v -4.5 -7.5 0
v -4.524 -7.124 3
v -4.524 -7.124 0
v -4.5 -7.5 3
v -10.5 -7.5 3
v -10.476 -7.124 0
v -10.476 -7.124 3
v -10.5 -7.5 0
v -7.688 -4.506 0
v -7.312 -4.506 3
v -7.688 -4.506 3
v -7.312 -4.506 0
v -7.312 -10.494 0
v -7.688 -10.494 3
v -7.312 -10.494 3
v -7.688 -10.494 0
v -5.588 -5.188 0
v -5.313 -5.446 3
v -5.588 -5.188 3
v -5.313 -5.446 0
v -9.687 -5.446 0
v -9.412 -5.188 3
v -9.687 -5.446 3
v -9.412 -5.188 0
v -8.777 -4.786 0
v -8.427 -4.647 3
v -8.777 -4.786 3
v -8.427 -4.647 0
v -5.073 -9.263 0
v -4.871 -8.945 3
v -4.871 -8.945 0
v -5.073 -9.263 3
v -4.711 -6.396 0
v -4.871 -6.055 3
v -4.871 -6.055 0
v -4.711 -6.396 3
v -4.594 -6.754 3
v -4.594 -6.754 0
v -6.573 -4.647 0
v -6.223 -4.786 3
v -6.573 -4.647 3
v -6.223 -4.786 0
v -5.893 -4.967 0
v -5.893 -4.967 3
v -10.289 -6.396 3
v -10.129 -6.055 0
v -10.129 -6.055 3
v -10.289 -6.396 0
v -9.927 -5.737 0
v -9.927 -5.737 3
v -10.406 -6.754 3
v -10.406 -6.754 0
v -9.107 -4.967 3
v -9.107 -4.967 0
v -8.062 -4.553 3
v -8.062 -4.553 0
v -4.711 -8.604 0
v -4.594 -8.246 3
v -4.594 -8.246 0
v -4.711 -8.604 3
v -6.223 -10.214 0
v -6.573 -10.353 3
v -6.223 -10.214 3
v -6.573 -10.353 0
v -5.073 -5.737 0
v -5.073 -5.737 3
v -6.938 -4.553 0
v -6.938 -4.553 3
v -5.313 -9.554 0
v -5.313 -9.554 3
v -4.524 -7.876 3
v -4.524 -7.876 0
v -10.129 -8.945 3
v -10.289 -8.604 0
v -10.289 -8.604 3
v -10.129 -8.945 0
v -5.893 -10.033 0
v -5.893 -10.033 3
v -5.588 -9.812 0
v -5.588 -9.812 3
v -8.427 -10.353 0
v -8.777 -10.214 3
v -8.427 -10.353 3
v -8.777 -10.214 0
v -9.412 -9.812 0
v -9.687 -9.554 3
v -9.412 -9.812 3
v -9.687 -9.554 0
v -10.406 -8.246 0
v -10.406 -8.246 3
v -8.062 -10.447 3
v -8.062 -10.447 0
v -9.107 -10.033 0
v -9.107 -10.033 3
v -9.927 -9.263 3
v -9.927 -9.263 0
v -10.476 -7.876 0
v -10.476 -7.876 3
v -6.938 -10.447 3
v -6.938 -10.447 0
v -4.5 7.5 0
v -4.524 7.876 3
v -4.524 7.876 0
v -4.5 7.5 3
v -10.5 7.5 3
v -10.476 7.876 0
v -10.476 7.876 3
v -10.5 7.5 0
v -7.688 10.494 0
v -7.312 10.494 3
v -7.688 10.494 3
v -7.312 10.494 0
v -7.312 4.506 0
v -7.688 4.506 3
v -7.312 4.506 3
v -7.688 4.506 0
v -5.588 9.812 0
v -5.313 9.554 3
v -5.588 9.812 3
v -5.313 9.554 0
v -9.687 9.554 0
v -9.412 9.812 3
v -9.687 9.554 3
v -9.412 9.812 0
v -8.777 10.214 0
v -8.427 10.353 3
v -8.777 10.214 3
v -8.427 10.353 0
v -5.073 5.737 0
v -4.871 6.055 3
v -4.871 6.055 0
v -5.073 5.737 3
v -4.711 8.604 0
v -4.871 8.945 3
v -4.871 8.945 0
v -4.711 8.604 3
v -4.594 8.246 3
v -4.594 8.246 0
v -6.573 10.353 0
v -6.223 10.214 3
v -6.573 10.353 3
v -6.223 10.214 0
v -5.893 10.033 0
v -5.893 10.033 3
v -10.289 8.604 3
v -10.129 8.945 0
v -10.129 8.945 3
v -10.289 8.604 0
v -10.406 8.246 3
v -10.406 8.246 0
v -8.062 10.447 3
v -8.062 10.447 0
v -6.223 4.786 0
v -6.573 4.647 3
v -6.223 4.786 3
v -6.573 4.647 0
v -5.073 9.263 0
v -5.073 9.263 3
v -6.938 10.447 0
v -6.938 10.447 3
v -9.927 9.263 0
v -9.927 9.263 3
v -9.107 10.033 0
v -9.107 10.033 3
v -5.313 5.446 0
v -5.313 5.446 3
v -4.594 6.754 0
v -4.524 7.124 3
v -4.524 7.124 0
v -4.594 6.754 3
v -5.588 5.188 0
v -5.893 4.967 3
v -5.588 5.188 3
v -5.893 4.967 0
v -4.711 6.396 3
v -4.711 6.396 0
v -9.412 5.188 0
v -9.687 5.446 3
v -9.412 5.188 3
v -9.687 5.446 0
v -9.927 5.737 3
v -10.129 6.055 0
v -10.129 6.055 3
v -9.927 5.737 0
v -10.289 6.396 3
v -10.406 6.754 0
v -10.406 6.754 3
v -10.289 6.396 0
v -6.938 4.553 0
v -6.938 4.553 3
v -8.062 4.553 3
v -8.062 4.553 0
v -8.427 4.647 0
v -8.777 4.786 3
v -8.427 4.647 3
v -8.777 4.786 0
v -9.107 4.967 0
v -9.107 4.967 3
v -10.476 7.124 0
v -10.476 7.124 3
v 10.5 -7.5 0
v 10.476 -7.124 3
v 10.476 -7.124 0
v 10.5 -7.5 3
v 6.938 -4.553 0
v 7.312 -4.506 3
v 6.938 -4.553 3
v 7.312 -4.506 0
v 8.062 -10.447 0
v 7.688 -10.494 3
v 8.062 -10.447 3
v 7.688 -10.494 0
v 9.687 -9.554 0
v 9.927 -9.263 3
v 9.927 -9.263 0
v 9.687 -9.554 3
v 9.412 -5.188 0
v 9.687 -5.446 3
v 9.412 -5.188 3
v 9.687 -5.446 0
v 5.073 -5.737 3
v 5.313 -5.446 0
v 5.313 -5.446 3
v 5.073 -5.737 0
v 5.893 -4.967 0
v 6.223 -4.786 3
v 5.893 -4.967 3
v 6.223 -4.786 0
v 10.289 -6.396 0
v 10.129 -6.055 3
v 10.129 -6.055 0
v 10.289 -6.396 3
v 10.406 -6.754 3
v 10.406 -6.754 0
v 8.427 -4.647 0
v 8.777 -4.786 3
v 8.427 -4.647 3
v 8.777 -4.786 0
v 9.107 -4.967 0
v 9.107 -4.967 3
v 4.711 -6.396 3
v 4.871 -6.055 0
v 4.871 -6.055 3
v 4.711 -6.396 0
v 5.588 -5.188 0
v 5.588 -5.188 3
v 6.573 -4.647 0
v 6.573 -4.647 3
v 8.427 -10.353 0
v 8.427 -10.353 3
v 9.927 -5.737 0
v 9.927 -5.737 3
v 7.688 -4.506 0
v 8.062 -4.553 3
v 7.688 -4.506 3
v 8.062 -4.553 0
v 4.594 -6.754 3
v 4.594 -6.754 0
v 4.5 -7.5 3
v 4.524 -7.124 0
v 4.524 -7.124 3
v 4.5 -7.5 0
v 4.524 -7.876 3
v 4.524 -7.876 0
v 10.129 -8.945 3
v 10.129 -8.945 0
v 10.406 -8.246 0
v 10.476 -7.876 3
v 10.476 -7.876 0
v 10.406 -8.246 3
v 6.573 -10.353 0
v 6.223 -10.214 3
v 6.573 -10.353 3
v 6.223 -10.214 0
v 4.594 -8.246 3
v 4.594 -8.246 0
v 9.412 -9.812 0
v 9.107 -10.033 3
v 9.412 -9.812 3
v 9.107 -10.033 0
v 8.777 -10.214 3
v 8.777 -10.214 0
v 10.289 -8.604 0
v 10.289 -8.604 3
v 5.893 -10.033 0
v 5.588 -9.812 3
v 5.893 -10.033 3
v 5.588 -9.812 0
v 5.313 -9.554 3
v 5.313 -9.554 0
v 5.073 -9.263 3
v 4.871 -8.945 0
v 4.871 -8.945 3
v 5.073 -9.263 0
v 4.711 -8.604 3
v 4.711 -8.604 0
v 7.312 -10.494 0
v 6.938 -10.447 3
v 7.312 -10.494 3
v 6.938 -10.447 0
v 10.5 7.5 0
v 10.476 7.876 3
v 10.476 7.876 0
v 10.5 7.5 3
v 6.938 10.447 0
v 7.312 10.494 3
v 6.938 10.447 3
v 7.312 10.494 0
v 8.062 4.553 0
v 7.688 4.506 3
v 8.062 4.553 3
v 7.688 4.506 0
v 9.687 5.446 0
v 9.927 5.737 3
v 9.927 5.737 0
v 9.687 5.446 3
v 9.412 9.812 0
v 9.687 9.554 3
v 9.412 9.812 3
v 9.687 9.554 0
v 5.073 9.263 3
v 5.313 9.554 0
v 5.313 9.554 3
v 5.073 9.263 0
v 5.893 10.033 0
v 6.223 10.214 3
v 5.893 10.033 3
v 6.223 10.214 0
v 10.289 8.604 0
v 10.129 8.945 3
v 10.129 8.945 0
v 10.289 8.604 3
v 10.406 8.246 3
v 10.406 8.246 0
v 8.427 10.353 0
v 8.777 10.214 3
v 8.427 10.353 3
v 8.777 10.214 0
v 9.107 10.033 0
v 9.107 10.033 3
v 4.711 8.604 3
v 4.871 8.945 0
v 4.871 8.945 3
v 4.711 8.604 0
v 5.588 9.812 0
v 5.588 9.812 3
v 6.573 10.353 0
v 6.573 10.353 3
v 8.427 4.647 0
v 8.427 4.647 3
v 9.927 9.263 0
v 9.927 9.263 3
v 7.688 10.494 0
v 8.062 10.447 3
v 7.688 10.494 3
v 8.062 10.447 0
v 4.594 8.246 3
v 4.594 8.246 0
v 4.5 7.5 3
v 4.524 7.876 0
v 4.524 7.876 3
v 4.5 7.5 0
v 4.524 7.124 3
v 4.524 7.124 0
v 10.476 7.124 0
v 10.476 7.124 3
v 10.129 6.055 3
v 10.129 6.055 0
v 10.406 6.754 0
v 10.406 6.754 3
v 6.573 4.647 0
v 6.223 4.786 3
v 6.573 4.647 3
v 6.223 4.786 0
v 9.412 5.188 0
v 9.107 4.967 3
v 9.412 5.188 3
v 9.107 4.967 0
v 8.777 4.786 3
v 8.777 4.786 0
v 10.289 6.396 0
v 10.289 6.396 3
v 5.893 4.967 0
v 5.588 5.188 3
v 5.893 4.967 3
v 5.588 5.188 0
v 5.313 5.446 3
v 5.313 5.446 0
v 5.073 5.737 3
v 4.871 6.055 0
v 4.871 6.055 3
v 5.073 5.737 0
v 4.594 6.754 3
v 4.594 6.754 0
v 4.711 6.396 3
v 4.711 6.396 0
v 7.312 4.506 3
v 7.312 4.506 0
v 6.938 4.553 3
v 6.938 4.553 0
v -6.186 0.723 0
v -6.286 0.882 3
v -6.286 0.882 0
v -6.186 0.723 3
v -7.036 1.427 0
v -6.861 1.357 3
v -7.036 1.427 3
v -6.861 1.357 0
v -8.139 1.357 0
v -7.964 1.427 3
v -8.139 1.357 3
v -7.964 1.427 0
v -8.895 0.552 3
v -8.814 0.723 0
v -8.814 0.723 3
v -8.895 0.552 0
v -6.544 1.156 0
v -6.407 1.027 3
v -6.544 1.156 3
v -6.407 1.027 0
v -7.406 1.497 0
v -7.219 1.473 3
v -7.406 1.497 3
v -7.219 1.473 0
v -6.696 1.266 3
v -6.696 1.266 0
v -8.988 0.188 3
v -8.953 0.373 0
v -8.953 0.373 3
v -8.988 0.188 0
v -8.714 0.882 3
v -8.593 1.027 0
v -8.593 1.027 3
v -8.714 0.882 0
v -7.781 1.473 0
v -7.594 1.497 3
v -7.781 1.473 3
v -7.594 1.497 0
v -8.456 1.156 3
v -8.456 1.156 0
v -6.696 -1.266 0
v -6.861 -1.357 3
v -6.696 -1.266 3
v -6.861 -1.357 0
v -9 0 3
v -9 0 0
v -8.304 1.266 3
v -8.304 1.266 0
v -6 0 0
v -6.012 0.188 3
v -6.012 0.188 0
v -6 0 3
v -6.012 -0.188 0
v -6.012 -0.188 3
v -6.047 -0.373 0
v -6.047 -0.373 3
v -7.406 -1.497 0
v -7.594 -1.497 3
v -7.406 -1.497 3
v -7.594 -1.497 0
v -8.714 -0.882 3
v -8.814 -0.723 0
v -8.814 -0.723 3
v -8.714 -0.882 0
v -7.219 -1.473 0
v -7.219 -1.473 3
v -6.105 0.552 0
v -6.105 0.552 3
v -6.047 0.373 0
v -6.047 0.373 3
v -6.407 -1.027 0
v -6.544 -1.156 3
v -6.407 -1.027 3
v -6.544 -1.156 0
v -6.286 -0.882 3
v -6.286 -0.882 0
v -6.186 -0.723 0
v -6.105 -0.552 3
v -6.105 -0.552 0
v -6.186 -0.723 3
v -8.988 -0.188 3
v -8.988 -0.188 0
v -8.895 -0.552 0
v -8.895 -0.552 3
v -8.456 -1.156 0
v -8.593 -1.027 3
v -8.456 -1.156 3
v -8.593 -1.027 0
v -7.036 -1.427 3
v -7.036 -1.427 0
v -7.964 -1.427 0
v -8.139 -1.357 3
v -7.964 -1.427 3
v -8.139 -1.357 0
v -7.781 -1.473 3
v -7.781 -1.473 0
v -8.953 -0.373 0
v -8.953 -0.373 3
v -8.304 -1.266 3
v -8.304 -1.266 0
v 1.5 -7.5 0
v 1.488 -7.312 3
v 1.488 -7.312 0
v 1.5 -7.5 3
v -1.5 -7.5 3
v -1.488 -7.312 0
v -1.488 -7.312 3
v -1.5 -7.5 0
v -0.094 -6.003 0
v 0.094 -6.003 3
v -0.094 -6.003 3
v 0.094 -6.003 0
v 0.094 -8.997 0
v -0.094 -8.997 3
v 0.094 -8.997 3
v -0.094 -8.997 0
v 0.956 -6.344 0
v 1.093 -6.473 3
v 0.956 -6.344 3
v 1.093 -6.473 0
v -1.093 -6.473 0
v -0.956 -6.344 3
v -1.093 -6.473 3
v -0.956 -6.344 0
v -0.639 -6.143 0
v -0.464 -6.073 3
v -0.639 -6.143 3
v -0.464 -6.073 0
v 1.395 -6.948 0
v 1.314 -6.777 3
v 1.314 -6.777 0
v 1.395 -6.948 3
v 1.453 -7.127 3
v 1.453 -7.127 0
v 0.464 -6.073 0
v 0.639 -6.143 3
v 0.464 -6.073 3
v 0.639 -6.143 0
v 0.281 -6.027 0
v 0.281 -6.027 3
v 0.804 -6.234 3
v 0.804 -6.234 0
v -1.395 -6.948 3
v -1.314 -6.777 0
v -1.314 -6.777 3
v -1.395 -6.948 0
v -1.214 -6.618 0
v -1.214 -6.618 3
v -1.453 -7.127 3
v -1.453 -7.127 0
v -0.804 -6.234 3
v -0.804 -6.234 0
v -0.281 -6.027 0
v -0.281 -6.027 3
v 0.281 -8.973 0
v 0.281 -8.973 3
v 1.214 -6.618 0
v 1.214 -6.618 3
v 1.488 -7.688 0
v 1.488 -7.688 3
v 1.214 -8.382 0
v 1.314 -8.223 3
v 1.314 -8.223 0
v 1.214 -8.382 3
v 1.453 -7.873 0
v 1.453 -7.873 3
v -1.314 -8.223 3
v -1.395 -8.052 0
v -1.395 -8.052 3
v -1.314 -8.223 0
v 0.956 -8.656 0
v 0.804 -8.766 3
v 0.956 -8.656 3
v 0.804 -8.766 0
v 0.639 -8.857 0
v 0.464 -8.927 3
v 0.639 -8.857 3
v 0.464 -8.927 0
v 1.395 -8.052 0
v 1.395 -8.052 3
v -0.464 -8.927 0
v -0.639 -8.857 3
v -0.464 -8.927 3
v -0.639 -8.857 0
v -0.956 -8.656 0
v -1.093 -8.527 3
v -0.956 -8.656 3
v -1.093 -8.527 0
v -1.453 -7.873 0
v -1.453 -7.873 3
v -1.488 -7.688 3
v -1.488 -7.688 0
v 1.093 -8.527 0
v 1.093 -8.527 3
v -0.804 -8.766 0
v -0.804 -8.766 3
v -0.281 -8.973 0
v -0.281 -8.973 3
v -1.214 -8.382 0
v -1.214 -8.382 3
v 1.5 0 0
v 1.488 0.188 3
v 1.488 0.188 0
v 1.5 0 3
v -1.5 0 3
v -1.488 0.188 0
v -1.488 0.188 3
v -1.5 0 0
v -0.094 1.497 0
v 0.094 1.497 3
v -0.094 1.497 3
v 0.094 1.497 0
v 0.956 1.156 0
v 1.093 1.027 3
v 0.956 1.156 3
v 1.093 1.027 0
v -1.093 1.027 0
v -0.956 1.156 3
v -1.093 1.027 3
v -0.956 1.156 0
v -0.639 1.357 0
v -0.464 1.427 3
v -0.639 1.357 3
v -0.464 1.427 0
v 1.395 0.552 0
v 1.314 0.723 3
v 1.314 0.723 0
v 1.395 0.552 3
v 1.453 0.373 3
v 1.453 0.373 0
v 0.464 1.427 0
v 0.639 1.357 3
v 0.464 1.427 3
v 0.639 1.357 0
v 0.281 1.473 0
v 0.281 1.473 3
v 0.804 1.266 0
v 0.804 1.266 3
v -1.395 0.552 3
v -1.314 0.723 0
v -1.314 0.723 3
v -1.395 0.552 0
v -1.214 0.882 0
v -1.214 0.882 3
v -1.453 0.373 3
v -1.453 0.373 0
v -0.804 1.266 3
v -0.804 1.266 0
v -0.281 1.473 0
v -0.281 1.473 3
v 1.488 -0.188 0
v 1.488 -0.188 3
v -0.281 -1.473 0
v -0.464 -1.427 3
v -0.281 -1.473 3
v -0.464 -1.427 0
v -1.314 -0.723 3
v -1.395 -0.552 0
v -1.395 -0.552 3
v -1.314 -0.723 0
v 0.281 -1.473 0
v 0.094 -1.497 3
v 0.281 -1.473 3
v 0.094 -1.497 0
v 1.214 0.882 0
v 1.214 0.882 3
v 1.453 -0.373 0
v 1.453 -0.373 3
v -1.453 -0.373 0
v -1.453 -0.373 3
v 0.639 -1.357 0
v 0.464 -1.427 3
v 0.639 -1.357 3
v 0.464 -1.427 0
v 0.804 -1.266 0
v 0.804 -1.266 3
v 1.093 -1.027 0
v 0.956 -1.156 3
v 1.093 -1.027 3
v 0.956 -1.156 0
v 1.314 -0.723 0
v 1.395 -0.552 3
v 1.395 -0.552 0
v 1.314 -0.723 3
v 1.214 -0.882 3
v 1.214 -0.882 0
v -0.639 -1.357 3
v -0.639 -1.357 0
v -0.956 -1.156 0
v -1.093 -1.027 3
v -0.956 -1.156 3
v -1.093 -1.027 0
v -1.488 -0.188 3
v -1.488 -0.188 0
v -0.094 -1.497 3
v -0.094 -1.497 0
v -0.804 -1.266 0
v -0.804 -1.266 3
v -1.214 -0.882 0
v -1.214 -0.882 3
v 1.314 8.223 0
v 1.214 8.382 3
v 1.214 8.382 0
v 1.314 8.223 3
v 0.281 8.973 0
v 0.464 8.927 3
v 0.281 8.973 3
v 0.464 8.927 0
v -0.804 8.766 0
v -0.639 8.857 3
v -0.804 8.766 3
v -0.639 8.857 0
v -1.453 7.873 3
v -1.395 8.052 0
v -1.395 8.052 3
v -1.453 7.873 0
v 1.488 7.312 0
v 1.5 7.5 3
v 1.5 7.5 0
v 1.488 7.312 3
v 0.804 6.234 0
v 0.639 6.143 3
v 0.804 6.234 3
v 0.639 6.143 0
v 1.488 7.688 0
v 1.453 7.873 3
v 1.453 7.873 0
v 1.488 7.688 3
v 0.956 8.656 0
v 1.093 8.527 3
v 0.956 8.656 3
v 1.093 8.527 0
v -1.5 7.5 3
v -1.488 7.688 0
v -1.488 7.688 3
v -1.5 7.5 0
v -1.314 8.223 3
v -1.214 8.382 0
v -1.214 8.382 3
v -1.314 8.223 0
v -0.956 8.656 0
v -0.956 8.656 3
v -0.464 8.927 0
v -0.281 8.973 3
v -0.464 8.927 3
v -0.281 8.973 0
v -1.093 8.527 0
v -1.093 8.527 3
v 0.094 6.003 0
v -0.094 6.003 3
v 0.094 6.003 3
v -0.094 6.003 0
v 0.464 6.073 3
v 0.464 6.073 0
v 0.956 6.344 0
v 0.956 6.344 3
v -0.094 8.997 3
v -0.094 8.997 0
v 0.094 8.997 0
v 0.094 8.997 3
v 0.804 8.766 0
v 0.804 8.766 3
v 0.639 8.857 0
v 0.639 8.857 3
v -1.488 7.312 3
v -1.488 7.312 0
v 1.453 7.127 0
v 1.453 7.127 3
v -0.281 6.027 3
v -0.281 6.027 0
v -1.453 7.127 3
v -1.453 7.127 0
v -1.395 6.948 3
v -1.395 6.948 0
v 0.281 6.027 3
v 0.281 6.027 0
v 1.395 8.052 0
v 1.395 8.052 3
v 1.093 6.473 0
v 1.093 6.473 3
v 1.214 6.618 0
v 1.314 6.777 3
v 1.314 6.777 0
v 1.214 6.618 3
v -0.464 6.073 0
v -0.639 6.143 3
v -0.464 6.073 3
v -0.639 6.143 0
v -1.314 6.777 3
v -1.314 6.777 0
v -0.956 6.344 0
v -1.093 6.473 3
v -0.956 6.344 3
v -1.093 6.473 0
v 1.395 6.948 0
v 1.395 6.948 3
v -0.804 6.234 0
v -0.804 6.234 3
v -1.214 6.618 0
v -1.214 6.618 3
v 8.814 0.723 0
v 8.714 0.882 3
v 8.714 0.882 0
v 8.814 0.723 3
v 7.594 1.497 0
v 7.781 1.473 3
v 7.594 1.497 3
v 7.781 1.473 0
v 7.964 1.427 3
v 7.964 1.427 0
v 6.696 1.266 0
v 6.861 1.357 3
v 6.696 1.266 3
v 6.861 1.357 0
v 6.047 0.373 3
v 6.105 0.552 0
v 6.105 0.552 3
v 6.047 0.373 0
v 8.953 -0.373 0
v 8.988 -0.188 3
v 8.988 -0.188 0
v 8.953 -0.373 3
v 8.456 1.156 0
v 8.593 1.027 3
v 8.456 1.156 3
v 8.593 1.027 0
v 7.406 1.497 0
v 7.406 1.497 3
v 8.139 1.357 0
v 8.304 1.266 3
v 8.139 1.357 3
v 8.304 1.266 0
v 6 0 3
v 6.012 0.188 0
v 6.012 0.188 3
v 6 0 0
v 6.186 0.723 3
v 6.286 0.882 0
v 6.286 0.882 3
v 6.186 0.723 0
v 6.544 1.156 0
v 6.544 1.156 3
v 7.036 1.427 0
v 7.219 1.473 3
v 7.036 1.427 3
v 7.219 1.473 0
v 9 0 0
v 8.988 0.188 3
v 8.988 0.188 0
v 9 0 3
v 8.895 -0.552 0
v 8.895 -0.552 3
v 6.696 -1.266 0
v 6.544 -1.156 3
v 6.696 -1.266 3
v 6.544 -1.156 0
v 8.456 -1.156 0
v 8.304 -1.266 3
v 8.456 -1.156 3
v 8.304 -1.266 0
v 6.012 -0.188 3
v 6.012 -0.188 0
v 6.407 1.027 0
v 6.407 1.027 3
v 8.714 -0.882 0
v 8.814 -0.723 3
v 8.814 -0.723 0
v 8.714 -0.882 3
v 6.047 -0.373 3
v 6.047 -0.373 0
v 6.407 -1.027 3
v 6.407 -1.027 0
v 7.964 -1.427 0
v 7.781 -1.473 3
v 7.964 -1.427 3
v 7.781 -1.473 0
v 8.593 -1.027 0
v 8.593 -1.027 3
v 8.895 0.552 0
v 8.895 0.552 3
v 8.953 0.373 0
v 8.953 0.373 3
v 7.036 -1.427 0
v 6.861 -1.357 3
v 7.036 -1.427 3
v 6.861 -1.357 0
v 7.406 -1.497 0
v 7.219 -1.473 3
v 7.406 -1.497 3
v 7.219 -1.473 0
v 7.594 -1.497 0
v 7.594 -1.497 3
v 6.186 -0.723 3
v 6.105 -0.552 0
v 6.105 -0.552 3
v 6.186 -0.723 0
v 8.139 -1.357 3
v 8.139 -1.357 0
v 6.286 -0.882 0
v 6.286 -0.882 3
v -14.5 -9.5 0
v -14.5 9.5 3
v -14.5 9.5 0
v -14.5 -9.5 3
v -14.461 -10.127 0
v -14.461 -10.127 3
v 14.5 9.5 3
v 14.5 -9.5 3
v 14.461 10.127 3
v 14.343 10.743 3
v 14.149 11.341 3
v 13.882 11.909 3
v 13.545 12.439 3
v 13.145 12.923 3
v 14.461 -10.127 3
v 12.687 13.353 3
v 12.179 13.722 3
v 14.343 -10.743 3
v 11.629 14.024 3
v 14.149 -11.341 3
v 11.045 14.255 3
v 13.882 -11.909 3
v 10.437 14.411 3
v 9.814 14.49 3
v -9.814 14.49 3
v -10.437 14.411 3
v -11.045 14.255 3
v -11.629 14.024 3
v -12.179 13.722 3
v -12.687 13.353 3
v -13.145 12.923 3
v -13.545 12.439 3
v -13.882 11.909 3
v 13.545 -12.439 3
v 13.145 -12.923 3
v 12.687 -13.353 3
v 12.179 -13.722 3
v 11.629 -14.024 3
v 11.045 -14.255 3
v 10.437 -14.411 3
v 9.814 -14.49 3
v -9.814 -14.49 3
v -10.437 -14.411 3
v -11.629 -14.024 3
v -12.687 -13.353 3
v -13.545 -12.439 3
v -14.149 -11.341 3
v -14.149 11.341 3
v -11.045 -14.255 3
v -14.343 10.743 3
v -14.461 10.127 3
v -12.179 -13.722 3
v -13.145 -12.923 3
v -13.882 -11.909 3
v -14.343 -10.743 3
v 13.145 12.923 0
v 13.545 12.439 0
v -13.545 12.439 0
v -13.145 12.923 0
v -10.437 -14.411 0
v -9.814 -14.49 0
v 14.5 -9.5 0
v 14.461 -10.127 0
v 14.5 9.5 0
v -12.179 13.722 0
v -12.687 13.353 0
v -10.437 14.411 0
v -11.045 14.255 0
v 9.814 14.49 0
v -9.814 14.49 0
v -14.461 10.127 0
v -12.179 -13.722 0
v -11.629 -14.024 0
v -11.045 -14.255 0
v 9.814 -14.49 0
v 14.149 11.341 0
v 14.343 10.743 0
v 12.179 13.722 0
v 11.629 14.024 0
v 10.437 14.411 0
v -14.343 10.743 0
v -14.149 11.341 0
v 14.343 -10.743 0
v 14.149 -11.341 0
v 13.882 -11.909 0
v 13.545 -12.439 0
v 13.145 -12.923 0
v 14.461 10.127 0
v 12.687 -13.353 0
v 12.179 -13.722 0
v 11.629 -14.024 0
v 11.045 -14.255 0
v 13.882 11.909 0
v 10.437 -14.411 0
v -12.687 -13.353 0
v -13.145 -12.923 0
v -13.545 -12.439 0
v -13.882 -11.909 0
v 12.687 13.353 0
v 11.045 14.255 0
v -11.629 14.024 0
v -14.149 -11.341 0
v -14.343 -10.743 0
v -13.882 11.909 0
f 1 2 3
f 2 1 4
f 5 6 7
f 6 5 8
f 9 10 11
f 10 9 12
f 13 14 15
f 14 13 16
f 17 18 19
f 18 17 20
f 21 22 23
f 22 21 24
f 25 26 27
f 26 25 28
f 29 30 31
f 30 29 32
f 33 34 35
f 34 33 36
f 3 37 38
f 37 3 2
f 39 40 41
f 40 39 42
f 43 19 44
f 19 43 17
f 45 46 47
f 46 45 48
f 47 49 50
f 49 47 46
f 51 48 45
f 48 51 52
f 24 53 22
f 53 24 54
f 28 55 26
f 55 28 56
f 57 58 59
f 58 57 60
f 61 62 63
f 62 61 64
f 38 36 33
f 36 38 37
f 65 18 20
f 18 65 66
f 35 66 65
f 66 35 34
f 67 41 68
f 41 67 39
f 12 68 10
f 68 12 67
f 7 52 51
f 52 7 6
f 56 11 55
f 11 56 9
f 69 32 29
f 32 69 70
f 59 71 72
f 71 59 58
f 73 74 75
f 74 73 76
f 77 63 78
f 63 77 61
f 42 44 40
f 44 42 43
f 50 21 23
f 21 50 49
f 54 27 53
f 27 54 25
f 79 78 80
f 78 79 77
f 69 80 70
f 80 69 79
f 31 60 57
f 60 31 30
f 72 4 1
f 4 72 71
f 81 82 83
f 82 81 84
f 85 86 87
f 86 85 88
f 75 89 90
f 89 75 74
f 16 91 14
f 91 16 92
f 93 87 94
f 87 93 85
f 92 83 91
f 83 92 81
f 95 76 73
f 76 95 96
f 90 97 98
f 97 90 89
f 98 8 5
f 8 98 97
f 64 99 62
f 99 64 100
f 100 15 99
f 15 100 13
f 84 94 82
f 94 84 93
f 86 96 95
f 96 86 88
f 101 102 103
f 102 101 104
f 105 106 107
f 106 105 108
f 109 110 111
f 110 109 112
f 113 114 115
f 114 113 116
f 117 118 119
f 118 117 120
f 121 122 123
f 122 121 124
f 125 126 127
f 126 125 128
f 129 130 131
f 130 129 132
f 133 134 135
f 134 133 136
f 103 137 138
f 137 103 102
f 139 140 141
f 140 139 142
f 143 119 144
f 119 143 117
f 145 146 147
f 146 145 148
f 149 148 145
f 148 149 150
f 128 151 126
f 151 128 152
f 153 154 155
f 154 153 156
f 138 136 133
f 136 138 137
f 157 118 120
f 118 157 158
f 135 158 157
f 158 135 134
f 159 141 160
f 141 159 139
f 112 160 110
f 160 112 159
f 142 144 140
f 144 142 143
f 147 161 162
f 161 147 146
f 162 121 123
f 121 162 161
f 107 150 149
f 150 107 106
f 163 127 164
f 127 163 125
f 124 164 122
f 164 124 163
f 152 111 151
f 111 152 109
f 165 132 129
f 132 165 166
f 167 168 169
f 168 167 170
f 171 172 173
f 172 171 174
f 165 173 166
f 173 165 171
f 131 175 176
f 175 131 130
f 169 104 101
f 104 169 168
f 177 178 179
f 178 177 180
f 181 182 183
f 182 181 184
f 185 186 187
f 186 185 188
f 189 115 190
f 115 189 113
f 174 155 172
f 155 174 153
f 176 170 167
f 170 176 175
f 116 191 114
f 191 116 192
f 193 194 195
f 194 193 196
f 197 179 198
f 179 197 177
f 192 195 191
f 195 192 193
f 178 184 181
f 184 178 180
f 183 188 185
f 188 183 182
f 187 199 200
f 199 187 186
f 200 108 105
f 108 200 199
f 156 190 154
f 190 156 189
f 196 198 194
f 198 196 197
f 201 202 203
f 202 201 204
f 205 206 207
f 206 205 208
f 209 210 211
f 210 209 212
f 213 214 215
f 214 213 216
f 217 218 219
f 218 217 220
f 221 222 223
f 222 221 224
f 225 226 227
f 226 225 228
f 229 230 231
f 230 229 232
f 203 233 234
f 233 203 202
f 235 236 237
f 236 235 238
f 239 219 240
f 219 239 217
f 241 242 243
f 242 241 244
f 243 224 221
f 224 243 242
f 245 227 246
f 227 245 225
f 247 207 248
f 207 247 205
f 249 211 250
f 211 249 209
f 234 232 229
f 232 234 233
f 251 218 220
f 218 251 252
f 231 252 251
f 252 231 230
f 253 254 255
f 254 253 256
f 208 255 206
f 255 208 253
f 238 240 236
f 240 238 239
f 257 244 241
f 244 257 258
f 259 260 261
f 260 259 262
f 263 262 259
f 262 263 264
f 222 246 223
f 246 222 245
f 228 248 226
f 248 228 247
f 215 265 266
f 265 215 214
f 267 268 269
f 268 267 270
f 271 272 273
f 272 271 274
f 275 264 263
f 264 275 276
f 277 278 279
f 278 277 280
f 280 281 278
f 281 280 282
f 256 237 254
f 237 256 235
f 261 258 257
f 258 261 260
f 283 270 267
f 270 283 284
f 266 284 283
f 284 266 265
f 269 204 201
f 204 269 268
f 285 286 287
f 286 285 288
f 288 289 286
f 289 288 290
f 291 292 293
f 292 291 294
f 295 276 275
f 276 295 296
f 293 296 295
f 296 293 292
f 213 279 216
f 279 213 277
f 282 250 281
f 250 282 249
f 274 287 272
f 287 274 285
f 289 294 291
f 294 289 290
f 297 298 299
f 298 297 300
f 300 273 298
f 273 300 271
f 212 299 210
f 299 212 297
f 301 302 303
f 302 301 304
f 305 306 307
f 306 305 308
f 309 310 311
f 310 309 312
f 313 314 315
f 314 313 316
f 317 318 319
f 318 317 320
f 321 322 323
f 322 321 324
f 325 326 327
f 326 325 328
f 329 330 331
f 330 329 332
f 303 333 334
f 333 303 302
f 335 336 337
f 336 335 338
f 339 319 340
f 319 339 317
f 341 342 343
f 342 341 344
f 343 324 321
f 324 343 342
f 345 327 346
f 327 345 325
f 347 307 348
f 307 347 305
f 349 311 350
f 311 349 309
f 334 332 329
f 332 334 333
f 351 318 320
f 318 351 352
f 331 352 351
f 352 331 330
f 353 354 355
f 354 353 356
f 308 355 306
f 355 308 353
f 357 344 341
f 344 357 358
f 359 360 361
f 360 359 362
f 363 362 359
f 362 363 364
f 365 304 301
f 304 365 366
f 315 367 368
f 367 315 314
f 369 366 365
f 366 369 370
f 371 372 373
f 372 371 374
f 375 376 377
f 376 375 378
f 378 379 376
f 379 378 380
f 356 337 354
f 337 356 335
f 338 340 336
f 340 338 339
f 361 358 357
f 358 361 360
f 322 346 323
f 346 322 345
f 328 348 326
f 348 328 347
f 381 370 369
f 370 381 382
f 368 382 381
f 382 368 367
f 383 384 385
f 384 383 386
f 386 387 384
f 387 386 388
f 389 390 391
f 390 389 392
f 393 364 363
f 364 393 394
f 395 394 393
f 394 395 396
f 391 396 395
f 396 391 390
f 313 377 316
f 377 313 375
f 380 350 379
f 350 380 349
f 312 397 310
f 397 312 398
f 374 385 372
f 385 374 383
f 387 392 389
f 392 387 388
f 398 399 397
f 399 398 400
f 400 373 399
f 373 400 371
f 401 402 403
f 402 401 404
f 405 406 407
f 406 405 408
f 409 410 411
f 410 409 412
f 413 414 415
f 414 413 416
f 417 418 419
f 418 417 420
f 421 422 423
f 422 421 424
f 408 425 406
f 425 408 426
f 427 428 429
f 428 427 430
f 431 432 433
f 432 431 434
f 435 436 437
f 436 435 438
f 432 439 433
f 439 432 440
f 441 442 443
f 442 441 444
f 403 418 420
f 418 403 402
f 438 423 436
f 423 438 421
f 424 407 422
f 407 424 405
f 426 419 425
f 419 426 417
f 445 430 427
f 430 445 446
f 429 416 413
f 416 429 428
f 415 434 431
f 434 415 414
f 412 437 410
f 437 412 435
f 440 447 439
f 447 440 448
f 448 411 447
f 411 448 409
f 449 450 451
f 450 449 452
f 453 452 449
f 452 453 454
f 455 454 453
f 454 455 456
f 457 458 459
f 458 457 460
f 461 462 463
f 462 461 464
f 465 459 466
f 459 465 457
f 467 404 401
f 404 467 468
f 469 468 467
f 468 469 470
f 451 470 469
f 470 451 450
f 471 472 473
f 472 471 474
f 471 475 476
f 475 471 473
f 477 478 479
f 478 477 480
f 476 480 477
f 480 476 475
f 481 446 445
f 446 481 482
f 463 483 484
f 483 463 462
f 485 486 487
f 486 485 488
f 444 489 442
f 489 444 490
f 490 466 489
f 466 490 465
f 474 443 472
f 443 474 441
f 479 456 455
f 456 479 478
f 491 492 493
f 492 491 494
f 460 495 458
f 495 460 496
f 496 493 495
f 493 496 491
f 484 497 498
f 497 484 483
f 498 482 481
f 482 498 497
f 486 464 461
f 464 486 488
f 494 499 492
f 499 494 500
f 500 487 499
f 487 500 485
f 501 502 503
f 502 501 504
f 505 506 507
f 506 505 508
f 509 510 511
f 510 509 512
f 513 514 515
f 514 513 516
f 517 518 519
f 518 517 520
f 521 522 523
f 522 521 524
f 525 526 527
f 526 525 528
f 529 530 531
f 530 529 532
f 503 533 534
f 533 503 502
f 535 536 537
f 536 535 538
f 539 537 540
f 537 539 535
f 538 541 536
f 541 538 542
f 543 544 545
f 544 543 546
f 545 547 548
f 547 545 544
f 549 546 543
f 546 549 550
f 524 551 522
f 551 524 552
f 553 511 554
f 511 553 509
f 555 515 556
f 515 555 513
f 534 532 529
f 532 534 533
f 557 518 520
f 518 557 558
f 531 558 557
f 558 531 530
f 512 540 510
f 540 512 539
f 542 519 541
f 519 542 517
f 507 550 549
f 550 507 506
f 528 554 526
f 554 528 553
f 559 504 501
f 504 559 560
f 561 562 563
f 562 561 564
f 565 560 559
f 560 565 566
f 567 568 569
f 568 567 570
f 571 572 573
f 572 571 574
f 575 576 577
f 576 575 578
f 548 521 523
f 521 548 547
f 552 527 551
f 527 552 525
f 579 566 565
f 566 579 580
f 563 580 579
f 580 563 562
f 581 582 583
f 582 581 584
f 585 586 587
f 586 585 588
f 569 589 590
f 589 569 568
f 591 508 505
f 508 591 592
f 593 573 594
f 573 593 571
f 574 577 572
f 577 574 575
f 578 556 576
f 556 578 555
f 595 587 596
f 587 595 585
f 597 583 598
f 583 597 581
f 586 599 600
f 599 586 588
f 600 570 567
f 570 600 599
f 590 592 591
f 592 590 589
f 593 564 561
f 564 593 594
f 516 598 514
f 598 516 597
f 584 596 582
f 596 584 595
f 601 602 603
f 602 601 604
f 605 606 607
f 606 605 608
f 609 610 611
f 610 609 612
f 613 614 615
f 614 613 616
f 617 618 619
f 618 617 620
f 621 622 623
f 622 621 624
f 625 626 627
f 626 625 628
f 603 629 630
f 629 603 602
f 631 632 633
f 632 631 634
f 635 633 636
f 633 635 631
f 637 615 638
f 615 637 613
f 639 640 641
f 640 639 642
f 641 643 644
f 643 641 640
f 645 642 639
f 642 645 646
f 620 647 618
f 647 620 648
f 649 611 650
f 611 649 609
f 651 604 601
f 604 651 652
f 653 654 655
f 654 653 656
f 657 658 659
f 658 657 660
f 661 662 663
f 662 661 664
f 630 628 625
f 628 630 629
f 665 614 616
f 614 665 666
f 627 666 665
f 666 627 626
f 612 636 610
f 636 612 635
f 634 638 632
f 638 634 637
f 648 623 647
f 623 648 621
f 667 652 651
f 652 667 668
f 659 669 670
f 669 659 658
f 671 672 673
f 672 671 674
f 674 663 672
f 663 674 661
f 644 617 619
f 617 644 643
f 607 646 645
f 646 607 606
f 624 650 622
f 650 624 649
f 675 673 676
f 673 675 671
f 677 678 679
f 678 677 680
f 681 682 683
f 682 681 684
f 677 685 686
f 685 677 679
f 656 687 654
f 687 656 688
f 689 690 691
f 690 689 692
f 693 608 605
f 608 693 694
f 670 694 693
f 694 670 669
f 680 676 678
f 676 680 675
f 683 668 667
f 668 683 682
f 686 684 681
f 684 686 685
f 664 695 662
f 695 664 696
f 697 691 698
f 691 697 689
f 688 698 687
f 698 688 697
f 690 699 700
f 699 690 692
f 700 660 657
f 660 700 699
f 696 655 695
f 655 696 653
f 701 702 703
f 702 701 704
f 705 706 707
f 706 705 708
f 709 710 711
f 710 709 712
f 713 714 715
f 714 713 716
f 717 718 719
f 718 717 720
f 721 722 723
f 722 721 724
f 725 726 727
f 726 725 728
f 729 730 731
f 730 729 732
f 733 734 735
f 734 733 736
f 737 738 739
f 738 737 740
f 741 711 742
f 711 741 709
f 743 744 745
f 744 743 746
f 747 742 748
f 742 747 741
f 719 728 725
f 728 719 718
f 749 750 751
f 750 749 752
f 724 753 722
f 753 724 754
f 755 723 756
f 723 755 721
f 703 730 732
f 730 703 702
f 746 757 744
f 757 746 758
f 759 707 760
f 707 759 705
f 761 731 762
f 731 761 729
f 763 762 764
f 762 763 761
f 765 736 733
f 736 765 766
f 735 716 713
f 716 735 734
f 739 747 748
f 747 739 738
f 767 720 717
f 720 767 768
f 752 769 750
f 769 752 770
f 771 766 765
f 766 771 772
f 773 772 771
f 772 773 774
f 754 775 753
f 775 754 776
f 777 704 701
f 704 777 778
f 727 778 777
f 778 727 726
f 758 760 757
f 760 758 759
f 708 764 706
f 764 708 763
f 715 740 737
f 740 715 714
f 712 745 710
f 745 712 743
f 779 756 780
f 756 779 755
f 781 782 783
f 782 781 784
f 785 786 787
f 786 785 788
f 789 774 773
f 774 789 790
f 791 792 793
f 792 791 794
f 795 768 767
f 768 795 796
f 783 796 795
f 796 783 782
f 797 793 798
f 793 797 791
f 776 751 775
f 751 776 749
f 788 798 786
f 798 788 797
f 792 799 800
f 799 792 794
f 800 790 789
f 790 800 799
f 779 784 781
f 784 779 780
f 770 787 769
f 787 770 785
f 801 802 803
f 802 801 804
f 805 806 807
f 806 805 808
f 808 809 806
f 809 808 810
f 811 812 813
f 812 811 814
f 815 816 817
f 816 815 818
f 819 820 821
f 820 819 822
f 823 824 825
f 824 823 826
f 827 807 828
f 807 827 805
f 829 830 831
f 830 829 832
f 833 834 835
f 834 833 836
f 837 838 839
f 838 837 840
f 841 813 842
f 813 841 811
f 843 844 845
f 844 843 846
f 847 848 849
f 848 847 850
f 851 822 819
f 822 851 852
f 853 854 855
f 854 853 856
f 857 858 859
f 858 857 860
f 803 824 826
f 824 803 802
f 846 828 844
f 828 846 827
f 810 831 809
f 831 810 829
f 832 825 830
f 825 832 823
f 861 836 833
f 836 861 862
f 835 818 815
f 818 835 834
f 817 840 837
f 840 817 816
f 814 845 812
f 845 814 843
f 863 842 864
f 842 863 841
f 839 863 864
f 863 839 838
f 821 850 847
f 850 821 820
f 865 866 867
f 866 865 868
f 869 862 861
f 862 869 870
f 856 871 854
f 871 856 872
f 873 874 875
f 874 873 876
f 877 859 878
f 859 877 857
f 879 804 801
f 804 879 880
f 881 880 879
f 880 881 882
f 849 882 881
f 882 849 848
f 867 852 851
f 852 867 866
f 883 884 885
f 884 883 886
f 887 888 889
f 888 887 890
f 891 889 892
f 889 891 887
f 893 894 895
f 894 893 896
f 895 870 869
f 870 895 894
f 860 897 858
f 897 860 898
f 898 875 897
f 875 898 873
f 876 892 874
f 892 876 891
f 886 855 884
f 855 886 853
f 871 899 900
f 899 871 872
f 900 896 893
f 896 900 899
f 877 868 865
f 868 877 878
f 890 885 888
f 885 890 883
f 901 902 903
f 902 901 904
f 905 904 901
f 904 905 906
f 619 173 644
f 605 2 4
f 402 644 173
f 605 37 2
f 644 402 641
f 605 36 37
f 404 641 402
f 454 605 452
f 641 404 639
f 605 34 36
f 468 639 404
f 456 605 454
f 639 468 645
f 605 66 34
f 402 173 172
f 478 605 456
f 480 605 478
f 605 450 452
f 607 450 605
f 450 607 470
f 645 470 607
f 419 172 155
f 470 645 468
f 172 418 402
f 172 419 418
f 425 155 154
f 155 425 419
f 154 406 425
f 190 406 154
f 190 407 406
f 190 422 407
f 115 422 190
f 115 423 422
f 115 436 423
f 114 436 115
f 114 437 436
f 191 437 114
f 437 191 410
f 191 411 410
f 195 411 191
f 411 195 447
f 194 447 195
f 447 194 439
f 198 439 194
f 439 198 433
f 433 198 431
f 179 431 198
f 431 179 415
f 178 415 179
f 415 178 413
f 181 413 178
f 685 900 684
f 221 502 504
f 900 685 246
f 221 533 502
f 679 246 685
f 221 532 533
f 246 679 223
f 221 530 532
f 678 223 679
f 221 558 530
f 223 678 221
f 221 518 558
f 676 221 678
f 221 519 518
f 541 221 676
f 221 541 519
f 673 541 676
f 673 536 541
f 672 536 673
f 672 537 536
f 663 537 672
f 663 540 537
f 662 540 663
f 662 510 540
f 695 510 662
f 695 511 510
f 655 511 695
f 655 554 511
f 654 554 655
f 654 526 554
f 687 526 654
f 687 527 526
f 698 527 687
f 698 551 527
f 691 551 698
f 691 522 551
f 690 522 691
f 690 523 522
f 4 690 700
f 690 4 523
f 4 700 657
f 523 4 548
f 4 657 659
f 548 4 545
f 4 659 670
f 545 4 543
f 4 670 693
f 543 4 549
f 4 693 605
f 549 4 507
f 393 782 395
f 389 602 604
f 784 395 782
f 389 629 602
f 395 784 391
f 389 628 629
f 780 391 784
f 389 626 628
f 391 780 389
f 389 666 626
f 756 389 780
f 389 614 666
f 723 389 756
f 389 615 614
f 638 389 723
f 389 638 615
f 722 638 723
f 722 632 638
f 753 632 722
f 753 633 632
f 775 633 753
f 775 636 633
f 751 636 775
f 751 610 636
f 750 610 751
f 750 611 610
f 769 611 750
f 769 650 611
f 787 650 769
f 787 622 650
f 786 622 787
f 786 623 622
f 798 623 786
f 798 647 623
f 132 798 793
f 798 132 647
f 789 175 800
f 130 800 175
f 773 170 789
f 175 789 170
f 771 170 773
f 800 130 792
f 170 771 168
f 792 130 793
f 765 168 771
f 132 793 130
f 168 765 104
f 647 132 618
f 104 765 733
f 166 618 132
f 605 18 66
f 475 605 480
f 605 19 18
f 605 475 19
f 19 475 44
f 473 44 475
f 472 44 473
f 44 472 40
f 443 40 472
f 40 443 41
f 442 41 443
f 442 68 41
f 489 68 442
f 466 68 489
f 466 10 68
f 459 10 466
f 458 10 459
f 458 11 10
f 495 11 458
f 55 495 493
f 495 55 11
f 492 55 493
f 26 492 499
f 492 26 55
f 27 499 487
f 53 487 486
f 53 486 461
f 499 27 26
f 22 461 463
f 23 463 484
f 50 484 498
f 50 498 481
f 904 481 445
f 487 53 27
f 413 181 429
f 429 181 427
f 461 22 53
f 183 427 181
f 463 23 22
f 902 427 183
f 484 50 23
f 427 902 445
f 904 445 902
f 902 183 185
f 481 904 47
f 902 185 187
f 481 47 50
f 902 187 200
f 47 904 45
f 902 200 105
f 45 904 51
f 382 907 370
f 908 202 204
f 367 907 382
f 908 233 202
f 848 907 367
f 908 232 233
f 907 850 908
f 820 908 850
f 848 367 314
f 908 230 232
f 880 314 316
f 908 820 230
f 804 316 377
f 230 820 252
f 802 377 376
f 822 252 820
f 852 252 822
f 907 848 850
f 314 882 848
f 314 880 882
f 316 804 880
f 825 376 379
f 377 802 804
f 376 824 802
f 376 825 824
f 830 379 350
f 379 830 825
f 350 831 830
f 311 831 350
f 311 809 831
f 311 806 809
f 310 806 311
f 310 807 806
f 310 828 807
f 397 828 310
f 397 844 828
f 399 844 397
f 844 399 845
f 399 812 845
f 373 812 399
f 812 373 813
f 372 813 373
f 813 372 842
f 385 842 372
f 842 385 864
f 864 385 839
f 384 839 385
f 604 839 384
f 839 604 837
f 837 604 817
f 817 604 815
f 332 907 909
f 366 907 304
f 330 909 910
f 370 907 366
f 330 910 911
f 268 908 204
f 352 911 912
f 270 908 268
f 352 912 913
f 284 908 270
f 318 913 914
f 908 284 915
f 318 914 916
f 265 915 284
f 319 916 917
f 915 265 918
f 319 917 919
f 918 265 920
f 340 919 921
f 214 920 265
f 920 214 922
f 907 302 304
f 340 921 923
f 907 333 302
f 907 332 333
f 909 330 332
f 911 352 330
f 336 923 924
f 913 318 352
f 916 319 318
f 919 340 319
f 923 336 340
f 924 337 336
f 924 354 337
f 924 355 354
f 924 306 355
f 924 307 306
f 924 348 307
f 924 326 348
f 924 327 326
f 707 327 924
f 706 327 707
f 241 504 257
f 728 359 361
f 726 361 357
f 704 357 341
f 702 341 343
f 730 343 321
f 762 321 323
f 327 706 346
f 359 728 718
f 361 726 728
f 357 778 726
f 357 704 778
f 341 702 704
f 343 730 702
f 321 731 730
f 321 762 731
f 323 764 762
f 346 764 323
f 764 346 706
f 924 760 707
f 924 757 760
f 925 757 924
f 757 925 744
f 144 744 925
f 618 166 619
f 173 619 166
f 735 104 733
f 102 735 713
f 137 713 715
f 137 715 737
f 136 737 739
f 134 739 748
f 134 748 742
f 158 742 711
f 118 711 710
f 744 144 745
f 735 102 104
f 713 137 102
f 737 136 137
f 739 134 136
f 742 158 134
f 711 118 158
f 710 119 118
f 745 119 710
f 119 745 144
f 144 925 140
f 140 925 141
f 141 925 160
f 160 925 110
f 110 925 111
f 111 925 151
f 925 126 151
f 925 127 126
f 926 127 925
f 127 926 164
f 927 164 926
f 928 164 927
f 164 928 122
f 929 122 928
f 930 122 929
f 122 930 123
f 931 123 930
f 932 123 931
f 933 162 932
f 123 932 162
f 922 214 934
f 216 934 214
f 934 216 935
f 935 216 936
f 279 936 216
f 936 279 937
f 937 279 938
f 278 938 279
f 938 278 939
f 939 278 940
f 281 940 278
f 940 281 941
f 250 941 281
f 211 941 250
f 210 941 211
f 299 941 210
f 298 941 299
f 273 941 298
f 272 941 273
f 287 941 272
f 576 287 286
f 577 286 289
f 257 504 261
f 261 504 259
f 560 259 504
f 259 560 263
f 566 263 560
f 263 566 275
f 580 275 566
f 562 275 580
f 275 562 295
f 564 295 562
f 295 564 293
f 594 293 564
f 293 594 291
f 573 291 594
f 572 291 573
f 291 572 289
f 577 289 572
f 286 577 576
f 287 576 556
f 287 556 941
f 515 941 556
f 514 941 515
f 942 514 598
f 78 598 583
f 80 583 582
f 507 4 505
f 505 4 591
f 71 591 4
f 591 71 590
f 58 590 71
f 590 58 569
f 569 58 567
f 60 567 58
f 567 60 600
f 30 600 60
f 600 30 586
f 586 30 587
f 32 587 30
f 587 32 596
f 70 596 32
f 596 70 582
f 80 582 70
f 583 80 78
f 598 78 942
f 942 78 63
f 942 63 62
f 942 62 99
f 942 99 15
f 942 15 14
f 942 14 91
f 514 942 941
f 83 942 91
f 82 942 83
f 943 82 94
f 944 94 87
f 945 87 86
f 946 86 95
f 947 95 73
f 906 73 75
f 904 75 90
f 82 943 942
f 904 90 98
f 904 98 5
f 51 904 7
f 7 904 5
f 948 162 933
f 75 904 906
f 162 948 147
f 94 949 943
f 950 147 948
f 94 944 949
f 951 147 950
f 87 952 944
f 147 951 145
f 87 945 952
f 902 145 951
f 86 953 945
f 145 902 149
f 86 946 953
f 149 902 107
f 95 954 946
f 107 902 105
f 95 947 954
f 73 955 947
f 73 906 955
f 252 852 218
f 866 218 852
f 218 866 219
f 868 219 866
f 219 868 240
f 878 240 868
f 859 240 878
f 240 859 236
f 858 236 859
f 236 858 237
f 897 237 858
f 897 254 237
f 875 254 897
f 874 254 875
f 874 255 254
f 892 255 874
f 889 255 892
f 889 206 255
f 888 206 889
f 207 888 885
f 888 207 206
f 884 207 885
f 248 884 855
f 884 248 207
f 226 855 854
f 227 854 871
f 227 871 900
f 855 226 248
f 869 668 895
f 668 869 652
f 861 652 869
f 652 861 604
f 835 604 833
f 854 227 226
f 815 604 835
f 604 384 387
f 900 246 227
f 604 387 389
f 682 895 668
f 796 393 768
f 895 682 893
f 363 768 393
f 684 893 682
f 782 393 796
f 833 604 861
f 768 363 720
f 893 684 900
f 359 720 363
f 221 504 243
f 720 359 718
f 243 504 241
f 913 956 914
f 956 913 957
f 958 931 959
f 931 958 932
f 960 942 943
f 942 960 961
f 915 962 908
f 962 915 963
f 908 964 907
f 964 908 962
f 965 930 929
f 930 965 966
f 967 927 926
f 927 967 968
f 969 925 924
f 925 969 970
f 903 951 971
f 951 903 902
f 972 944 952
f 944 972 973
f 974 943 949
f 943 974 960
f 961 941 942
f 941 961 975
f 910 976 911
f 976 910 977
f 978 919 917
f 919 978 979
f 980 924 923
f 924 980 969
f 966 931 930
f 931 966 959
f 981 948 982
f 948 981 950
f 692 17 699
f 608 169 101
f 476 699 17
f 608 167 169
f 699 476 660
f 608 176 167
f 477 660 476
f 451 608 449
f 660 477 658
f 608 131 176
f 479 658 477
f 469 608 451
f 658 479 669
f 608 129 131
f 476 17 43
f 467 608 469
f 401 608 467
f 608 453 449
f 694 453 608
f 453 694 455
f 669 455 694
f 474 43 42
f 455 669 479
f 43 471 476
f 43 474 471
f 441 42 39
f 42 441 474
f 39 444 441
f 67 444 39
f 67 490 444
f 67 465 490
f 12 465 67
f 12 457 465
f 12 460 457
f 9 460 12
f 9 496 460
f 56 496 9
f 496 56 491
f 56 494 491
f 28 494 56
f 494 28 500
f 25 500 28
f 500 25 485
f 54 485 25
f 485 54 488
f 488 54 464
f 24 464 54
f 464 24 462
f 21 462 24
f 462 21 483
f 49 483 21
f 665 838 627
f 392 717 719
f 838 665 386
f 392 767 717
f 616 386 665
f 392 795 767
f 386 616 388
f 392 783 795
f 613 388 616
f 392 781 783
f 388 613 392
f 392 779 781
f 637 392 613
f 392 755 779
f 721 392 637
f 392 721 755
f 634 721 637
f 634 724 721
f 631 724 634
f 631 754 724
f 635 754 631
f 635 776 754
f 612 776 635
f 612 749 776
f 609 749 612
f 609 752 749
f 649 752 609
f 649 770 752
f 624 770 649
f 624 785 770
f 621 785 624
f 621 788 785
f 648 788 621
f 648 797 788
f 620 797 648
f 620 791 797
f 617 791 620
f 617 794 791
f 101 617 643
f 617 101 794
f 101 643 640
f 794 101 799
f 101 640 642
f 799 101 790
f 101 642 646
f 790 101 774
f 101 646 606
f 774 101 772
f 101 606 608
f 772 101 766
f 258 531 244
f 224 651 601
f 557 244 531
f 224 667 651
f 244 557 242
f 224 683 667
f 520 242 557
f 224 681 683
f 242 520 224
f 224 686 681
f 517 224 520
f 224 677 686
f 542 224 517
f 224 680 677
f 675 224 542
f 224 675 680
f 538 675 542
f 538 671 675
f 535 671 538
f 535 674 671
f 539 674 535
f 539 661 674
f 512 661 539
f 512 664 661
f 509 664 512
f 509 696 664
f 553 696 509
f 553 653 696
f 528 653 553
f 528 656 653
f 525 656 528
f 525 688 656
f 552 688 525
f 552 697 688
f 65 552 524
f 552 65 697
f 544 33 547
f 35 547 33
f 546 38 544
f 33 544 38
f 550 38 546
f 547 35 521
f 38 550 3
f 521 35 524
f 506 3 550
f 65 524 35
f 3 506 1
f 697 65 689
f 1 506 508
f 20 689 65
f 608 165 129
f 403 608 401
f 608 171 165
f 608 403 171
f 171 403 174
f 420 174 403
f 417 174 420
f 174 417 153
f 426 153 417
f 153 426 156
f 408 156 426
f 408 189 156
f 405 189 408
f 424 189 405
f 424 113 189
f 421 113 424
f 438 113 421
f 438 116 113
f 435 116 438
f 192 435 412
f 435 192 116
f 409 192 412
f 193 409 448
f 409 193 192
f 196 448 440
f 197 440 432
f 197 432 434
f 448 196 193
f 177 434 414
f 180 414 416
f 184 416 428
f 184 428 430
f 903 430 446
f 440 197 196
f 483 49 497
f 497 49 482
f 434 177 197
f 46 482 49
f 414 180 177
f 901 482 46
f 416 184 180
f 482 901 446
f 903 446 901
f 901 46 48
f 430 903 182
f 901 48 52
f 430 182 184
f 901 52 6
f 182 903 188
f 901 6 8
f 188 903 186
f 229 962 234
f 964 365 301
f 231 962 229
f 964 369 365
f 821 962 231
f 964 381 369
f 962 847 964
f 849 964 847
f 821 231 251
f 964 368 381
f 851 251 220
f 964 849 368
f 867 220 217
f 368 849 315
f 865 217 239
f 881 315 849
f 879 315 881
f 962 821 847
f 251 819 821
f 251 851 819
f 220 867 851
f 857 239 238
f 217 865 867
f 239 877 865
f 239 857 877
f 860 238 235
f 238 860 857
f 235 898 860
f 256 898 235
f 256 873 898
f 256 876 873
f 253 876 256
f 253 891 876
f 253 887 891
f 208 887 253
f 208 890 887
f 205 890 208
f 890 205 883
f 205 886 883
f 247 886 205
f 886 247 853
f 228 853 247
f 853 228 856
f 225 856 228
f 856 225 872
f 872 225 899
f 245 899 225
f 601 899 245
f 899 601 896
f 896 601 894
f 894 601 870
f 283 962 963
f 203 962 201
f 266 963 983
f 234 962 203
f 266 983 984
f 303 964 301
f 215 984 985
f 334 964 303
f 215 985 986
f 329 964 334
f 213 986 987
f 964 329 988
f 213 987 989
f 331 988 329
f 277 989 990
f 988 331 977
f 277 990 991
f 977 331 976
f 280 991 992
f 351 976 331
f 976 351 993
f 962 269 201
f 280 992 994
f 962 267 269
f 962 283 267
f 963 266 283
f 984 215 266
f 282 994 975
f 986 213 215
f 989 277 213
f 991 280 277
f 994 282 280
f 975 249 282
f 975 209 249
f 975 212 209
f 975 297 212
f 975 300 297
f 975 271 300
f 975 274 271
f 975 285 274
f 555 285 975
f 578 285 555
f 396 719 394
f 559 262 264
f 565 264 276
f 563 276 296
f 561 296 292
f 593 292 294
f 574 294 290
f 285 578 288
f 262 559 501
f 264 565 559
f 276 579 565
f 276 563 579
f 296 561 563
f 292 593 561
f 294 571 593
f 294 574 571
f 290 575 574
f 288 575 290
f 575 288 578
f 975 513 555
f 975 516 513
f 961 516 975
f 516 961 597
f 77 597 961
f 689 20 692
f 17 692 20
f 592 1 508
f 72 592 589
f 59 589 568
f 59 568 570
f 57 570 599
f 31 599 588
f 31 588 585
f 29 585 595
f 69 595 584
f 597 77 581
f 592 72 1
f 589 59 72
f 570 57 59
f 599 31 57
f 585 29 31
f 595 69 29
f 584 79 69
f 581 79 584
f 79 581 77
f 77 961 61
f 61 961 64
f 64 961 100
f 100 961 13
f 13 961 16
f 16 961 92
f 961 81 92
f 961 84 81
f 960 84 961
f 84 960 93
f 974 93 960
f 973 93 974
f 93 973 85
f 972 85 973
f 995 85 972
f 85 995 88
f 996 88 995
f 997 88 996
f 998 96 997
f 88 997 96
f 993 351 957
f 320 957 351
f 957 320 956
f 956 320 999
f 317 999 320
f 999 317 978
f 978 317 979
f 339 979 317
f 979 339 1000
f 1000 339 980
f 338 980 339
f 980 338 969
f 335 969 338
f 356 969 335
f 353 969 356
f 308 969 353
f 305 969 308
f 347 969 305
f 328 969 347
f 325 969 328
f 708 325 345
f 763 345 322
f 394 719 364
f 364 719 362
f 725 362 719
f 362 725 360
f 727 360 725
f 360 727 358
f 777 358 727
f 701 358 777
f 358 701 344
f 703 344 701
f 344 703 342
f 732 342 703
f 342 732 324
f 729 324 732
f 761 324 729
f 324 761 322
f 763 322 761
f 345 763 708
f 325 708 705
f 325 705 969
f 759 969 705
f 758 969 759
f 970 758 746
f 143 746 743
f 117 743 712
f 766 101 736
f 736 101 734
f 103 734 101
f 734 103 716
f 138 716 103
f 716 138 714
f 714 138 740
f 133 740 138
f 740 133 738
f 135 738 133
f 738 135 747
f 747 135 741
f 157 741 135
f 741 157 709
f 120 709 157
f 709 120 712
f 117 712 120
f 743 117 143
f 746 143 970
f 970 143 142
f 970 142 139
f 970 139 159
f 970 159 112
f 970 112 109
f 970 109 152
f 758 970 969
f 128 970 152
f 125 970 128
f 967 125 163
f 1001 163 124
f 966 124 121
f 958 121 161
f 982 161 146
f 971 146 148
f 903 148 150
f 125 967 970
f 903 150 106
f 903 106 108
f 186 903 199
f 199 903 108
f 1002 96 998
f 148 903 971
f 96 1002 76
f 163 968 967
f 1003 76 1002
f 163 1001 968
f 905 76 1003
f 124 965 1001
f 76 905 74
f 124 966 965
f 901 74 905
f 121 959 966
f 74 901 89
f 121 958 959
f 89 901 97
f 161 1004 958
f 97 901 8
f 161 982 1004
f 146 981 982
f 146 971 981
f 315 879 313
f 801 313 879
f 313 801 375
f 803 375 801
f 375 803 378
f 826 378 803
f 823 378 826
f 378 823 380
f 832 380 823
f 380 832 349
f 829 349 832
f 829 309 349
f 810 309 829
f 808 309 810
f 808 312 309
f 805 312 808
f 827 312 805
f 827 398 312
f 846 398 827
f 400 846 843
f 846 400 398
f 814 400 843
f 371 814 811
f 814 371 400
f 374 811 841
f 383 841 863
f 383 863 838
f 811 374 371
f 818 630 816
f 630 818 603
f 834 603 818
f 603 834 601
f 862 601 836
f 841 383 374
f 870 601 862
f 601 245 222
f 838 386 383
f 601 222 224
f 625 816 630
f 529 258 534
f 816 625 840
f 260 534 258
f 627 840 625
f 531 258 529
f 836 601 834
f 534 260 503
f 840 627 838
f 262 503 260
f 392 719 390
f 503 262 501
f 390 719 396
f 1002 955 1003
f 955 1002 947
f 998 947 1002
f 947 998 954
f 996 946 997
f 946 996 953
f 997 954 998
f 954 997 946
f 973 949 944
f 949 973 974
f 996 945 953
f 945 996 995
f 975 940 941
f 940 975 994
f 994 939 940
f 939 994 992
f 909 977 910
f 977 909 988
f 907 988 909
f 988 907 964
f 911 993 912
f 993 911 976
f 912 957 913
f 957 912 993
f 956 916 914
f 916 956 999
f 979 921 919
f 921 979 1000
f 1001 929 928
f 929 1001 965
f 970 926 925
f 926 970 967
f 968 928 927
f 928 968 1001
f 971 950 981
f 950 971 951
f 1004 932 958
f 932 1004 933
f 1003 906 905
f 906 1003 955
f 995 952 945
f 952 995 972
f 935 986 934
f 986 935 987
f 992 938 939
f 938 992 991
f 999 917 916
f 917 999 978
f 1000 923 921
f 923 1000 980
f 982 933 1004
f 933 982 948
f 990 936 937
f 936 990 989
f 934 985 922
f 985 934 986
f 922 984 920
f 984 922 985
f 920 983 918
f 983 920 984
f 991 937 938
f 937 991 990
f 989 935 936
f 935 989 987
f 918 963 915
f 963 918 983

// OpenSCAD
$fn = 50;


difference() {
	union() {
		*color(alpha = 1.0000000000, c = "gray") {
			translate(v = [0, 7, 0]) {
				linear_extrude(height = 1) {
					text(font = "Arial:style=Bold", halign = "center", size = 4.5000000000, text = "COMMENT plate main", valign = "center");
				}
			}
		}
		hull() {
			translate(v = [-9.5000000000, 9.5000000000, 0]) {
				cylinder(h = 3, r = 5);
			}
			translate(v = [9.5000000000, 9.5000000000, 0]) {
				cylinder(h = 3, r = 5);
			}
			translate(v = [-9.5000000000, -9.5000000000, 0]) {
				cylinder(h = 3, r = 5);
			}
			translate(v = [9.5000000000, -9.5000000000, 0]) {
				cylinder(h = 3, r = 5);
			}
		}
	}
	union() {
		*color(alpha = 1.0000000000, c = "gray") {
			translate(v = [0, 7, 0]) {
				linear_extrude(height = 1) {
					text(font = "Arial:style=Bold", halign = "center", size = 4.5000000000, text = "COMMENT holes main", valign = "center");
				}
			}
		}
		translate(v = [-7.5000000000, -7.5000000000, 0]) {
			translate(v = [0, 0, -100]) {
				cylinder(h = 200, r = 3.0000000000);
			}
		}
		translate(v = [-7.5000000000, 7.5000000000, 0]) {
			translate(v = [0, 0, -100]) {
				cylinder(h = 200, r = 3.0000000000);
			}
		}
		translate(v = [7.5000000000, -7.5000000000, 0]) {
			translate(v = [0, 0, -100]) {
				cylinder(h = 200, r = 3.0000000000);
			}
		}
		translate(v = [7.5000000000, 7.5000000000, 0]) {
			translate(v = [0, 0, -100]) {
				cylinder(h = 200, r = 3.0000000000);
			}
		}
		translate(v = [-7.5000000000, -7.5000000000, 0]) {
			translate(v = [0, 0, -100]) {
				cylinder(h = 200, r = 1.5000000000);
			}
		}
		translate(v = [-7.5000000000, 0.0000000000, 0]) {
			translate(v = [0, 0, -100]) {
				cylinder(h = 200, r = 1.5000000000);
			}
		}
		translate(v = [-7.5000000000, 7.5000000000, 0]) {
			translate(v = [0, 0, -100]) {
				cylinder(h = 200, r = 1.5000000000);
			}
		}
		translate(v = [0.0000000000, -7.5000000000, 0]) {
			translate(v = [0, 0, -100]) {
				cylinder(h = 200, r = 1.5000000000);
			}
		}
		translate(v = [0, 0, -100]) {
			cylinder(h = 200, r = 1.5000000000);
		}
		translate(v = [0.0000000000, 7.5000000000, 0]) {
			translate(v = [0, 0, -100]) {
				cylinder(h = 200, r = 1.5000000000);
			}
		}
		translate(v = [7.5000000000, -7.5000000000, 0]) {
			translate(v = [0, 0, -100]) {
				cylinder(h = 200, r = 1.5000000000);
			}
		}
		translate(v = [7.5000000000, 0.0000000000, 0]) {
			translate(v = [0, 0, -100]) {
				cylinder(h = 200, r = 1.5000000000);
			}
		}
		translate(v = [7.5000000000, 7.5000000000, 0]) {
			translate(v = [0, 0, -100]) {
				cylinder(h = 200, r = 1.5000000000);
			}
		}
	}
}
